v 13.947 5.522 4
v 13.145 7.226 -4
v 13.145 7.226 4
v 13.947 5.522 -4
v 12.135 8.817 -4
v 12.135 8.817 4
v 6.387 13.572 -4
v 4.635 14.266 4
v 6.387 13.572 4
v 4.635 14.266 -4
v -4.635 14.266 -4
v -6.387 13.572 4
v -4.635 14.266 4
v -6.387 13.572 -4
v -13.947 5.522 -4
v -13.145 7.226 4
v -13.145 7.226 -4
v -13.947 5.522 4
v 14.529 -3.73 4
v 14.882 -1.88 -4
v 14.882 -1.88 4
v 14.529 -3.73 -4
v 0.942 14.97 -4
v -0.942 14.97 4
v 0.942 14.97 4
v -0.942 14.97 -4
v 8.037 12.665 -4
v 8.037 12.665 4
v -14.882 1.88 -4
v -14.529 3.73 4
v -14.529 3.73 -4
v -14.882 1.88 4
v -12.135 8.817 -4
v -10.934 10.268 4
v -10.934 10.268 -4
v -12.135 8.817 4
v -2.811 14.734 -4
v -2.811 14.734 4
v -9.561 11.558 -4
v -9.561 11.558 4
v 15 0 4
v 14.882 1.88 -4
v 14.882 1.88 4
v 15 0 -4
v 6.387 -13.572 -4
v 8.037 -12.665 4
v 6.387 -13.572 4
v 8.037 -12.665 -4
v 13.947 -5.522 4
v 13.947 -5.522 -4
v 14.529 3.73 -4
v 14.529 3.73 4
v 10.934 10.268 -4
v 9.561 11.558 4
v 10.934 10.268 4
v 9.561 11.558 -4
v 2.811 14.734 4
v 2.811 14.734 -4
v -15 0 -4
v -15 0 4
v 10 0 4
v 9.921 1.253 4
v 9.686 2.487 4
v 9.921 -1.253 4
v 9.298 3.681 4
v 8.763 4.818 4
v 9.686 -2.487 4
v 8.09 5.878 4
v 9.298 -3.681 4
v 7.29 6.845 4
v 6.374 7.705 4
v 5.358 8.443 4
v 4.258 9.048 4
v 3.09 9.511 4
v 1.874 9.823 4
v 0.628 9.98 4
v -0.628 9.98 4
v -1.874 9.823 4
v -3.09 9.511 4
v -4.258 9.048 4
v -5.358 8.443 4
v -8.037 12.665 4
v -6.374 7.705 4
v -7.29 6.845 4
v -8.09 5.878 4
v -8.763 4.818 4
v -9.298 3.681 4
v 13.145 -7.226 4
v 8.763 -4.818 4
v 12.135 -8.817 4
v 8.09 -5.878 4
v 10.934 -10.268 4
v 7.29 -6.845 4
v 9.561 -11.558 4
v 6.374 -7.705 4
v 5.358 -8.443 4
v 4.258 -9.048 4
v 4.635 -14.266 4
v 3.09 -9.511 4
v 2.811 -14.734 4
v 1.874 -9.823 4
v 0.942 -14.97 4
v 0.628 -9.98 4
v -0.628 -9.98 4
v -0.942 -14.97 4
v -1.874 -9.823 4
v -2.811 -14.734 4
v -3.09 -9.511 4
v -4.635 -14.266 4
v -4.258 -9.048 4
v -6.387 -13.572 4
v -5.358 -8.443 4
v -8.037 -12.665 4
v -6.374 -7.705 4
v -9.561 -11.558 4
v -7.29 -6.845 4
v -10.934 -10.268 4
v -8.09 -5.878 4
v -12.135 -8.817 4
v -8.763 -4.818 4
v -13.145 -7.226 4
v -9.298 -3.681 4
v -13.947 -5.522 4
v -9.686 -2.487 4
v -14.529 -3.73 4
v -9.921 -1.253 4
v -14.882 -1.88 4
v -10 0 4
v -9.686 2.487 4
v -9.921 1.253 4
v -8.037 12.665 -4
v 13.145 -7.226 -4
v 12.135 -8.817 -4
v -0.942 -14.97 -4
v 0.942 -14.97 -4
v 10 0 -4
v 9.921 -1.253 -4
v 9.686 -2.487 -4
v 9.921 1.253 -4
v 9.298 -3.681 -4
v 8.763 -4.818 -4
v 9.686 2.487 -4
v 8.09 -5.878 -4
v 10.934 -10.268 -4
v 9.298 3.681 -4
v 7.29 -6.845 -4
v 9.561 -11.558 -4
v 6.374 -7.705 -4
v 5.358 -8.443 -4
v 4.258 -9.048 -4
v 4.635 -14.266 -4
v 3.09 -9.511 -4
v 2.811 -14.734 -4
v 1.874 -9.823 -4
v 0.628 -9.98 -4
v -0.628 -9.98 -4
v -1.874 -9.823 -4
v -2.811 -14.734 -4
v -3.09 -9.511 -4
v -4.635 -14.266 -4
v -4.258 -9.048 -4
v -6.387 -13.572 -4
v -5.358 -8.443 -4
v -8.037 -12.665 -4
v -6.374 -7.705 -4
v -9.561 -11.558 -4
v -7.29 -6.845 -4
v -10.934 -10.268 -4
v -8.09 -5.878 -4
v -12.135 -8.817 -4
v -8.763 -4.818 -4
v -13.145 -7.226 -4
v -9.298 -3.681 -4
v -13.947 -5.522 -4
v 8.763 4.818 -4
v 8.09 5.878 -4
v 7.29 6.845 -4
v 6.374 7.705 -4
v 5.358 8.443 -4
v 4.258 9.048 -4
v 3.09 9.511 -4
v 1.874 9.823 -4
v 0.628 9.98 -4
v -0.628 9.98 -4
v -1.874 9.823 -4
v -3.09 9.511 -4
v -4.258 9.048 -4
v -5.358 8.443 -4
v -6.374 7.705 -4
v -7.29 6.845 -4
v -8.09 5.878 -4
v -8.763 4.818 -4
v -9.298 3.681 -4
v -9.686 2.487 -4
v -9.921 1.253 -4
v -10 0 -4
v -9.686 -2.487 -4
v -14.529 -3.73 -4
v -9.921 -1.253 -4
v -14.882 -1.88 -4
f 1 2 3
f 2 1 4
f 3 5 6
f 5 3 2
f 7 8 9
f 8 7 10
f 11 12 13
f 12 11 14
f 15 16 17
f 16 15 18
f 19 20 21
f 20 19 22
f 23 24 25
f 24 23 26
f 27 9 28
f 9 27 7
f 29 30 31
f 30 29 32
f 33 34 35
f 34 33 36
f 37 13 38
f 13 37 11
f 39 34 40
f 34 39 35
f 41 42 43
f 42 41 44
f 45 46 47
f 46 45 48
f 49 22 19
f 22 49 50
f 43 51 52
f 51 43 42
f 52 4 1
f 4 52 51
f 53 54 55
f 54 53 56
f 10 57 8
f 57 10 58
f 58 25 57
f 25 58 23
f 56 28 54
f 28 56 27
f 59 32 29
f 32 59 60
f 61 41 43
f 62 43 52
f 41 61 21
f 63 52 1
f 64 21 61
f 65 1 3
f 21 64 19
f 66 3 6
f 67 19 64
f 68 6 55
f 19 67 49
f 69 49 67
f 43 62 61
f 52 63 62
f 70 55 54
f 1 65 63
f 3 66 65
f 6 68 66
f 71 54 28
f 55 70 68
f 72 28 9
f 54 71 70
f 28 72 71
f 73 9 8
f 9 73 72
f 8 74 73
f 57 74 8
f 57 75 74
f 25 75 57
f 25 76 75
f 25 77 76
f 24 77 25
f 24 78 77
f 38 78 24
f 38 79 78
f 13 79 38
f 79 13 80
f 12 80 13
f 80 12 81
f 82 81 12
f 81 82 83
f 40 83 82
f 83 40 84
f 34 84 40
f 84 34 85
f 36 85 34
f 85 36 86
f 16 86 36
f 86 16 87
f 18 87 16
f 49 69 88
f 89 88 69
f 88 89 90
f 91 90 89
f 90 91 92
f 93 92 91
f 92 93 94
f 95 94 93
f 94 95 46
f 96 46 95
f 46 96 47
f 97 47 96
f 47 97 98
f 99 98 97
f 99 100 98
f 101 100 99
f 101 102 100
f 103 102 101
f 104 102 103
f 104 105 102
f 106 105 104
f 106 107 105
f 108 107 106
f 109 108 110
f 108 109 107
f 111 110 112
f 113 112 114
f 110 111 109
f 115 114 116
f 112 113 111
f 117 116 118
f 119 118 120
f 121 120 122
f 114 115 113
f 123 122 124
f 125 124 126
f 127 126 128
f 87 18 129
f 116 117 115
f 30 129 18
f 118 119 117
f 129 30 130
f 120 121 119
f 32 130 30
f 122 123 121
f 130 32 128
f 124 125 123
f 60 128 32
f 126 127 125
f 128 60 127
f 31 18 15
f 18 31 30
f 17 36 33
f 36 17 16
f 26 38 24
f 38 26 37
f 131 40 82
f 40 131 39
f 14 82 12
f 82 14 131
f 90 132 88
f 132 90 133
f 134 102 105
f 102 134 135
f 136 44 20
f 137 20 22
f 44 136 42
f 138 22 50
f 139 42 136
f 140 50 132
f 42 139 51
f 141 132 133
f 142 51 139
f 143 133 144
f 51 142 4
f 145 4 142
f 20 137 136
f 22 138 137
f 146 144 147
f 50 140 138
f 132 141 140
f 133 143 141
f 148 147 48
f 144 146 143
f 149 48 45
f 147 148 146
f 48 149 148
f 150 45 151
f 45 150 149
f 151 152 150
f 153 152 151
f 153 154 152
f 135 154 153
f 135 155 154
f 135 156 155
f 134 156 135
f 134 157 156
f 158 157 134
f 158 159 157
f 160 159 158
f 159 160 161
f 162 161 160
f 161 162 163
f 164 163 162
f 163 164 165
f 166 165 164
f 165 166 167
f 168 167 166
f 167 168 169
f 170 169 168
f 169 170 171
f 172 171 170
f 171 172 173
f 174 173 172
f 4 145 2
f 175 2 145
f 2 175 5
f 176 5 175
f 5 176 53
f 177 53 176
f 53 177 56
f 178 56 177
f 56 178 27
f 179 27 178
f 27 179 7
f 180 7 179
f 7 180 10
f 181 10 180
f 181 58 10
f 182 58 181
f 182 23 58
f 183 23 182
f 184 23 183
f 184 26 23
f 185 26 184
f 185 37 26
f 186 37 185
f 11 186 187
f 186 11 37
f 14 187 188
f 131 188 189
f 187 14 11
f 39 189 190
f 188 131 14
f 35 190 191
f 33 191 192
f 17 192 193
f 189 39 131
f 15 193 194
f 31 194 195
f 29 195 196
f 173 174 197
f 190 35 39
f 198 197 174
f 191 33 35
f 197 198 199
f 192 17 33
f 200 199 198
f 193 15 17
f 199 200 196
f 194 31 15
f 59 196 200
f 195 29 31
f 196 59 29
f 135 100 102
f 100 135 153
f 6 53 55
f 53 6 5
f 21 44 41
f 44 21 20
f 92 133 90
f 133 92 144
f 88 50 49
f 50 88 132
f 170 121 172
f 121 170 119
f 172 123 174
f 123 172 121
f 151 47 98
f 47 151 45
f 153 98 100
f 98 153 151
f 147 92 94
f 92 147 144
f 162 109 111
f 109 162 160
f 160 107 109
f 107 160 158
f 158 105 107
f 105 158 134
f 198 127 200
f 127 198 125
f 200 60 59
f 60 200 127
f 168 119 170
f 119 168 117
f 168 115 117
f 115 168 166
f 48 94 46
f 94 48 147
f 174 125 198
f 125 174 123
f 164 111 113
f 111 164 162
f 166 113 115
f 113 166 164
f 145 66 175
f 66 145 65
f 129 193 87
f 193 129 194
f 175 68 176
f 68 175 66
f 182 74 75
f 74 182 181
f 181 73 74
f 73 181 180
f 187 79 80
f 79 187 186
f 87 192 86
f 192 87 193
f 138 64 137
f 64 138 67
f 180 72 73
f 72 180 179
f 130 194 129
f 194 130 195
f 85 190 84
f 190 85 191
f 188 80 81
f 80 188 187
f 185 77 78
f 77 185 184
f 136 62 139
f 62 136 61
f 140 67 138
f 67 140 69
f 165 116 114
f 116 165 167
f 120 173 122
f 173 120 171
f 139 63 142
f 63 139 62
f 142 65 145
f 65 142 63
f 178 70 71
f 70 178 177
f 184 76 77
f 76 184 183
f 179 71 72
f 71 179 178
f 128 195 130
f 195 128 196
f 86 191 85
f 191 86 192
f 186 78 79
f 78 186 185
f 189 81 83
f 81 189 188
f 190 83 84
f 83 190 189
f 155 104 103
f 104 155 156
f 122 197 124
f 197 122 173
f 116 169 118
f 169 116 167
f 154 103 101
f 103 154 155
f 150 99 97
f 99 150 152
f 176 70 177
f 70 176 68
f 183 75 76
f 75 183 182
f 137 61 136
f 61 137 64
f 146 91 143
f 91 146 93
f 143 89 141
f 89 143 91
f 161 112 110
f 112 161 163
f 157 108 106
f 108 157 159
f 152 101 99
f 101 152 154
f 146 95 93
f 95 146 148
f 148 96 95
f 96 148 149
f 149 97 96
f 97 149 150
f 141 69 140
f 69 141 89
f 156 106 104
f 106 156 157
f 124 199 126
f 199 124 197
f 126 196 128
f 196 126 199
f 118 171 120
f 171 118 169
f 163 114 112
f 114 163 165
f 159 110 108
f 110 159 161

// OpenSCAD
$fn = 50;


difference() {
	union() {
		translate(v = [0, 0, -4.0000000000]) {
			cylinder(h = 8, r = 15.0000000000);
		}
	}
	union() {
		translate(v = [0, 0, -100.0000000000]) {
			cylinder(h = 200, r = 10);
		}
	}
}
